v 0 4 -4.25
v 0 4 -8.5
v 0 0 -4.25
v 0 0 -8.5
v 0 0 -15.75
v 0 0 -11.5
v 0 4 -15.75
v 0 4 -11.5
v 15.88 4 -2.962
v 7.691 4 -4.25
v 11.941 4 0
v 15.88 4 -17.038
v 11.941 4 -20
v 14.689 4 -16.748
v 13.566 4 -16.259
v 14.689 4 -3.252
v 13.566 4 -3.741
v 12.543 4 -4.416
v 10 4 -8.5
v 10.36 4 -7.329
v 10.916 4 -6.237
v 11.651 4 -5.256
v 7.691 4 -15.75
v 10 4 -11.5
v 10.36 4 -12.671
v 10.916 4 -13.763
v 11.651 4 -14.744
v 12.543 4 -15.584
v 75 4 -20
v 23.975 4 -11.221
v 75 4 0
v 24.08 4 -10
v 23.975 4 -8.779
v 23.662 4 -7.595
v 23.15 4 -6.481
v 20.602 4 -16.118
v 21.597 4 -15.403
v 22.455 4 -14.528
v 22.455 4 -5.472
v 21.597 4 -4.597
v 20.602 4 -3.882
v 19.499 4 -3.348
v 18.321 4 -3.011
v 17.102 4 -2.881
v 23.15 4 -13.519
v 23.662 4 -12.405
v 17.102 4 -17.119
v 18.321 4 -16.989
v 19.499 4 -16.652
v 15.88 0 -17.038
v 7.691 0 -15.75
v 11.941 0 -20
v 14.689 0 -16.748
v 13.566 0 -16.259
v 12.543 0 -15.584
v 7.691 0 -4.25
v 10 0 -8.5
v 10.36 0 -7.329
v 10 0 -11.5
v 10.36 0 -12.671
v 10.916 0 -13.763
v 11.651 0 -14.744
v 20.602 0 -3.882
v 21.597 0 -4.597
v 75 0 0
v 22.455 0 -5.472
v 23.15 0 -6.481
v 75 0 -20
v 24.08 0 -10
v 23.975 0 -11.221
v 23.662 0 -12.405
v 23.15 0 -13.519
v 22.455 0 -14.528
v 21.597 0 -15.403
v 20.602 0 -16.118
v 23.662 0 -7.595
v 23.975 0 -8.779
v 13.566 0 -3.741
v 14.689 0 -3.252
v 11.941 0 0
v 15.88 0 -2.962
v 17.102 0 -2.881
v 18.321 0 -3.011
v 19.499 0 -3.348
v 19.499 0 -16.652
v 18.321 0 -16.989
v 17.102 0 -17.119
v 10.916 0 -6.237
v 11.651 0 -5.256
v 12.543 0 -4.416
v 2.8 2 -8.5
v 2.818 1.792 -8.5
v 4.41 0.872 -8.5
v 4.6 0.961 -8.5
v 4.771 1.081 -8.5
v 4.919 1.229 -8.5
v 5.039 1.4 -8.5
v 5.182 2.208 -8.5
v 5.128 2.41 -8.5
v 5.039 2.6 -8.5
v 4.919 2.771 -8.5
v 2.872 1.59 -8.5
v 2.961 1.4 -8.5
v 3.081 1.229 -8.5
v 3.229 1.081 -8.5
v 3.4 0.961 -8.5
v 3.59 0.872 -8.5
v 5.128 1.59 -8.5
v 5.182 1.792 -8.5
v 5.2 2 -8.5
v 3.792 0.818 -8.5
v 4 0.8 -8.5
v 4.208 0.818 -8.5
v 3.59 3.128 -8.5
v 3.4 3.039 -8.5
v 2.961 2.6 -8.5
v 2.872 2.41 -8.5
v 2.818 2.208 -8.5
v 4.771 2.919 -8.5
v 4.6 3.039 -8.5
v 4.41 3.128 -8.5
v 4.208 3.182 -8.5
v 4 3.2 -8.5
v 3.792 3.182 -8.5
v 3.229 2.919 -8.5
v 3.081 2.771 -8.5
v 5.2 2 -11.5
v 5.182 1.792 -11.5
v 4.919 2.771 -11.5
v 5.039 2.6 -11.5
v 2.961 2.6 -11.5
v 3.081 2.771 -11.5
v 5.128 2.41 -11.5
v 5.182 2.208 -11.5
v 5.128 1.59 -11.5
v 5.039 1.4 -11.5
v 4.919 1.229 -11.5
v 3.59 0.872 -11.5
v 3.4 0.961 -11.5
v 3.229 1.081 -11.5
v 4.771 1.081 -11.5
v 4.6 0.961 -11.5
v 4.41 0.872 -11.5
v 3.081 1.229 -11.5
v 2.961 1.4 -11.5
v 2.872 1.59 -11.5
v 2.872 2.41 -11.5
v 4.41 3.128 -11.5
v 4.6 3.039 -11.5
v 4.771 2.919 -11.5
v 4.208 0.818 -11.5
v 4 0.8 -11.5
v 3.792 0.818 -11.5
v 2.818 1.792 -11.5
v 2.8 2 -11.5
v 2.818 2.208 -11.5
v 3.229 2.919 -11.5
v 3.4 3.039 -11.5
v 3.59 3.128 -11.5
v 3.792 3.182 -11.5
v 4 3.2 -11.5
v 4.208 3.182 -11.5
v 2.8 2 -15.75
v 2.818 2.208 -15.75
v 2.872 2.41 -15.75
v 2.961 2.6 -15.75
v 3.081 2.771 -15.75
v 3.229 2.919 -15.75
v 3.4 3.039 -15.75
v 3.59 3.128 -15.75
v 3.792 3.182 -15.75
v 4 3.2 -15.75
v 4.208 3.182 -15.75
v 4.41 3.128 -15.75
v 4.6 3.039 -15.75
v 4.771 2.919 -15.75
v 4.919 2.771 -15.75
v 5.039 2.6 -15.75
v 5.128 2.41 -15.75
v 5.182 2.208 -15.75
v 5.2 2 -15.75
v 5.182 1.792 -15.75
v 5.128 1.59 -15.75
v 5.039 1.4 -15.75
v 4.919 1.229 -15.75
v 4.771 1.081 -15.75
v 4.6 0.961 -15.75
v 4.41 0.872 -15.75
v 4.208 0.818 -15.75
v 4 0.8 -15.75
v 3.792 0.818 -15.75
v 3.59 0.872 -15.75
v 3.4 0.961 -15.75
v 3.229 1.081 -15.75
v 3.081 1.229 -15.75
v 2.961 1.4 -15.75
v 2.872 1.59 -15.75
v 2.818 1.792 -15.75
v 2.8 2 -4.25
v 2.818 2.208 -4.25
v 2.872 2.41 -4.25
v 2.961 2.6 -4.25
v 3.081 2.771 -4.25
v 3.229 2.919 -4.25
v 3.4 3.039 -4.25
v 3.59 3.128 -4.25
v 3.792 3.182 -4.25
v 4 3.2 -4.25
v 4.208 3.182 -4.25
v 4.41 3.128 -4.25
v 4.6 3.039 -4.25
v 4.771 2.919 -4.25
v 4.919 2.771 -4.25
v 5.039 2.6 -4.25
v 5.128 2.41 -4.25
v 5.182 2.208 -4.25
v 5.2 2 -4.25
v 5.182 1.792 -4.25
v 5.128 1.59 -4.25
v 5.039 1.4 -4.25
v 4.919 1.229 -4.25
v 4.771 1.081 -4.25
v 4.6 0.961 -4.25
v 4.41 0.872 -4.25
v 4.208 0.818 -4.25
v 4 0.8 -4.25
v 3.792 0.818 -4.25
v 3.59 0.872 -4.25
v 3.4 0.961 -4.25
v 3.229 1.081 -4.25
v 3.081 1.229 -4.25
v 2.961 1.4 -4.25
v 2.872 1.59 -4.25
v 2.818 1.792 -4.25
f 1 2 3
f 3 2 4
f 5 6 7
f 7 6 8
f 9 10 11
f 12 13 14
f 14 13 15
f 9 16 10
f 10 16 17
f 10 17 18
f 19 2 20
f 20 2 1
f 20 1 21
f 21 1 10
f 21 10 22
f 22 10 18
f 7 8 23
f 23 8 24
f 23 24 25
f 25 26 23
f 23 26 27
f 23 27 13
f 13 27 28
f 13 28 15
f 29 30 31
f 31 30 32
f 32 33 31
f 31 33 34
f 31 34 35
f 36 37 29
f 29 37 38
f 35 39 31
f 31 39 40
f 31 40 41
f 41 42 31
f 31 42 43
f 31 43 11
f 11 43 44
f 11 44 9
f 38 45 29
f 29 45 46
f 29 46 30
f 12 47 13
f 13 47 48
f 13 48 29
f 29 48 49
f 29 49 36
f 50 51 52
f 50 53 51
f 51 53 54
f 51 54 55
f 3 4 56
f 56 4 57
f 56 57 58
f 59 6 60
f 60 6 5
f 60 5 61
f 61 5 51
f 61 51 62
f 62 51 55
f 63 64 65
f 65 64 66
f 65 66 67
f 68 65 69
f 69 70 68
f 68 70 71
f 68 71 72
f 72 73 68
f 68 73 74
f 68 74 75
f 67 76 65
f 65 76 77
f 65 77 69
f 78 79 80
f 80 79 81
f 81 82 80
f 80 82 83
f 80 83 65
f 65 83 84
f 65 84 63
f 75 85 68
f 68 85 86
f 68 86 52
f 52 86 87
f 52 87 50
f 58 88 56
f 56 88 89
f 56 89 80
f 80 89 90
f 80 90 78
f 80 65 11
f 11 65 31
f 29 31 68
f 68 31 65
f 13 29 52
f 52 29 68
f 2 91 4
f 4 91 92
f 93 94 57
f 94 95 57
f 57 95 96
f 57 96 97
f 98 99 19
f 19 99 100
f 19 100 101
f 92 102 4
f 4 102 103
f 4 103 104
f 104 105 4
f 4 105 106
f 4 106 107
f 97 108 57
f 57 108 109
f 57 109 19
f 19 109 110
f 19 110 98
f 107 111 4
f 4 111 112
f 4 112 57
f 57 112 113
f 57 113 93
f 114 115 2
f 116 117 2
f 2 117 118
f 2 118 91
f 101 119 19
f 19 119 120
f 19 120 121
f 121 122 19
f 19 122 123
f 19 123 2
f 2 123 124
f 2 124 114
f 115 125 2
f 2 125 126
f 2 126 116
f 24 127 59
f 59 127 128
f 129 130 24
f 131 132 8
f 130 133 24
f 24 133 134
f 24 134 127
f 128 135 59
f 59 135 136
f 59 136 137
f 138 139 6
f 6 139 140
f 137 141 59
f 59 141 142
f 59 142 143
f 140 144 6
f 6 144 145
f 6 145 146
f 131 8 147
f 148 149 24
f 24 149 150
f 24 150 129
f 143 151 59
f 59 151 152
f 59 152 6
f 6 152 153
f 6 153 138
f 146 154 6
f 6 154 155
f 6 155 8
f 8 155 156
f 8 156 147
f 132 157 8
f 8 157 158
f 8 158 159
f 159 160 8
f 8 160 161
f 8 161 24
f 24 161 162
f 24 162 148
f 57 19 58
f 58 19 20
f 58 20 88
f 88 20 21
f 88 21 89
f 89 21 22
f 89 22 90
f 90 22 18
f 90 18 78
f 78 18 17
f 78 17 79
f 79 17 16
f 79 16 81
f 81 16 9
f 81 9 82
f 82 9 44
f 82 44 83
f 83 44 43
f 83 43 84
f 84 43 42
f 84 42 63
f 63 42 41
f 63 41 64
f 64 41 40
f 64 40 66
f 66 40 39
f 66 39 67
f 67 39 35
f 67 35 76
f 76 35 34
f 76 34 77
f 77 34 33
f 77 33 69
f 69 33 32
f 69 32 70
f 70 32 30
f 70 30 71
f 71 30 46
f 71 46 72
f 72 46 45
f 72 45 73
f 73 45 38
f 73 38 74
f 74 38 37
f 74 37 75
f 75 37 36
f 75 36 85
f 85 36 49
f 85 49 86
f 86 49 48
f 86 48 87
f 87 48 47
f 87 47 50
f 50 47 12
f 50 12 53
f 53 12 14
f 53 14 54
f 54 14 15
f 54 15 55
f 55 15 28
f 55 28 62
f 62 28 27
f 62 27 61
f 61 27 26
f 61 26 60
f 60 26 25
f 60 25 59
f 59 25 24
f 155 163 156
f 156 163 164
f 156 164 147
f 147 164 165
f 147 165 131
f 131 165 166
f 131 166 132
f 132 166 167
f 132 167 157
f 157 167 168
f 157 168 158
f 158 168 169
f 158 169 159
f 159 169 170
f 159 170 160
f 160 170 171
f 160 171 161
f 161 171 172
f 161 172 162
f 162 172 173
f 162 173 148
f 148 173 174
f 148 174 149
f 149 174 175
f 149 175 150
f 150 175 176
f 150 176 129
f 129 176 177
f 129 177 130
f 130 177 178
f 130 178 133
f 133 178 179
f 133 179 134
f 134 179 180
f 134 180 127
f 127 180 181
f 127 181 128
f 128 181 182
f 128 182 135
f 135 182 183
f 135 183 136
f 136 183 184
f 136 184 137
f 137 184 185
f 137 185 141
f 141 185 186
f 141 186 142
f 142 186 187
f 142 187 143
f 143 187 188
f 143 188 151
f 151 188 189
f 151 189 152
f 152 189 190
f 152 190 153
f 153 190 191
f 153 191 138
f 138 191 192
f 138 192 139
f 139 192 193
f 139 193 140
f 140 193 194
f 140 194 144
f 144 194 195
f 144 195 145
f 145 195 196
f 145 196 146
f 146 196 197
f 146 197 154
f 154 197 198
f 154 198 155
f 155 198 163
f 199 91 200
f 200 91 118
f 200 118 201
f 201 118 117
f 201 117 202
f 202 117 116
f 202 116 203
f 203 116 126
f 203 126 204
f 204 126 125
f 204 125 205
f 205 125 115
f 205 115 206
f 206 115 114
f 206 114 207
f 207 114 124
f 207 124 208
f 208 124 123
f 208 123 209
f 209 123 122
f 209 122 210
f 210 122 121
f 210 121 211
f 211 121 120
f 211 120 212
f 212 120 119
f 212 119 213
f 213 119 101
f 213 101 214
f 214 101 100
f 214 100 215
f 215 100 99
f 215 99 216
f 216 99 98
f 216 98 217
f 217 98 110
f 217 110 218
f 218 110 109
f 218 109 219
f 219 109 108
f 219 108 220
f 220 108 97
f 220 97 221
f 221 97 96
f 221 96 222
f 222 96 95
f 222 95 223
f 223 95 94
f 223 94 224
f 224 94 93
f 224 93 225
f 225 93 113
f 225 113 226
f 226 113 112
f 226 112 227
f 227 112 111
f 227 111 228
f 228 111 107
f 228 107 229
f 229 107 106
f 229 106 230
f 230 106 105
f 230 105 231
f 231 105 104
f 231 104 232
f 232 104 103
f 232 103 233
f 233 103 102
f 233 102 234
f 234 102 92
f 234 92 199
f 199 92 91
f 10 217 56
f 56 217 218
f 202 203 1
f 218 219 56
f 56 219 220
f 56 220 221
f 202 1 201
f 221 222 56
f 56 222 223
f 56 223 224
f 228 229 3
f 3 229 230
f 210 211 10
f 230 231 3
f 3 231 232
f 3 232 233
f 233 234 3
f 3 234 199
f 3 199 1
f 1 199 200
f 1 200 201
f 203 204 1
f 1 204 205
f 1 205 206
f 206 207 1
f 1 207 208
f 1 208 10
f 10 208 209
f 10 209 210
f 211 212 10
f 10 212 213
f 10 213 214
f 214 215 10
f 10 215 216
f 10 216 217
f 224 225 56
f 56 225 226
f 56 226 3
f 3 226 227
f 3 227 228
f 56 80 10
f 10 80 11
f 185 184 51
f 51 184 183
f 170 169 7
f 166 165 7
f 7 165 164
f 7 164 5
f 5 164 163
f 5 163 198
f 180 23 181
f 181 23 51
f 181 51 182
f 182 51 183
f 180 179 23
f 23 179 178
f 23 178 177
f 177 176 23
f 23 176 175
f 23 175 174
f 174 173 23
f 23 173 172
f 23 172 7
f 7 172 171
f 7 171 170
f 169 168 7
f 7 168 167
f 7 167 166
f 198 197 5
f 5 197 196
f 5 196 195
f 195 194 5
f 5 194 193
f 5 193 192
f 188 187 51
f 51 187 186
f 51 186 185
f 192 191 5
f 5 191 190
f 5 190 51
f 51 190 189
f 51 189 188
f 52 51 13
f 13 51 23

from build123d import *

# Parameters (mm, degrees)
SKETCH1_W               = 75
SKETCH1_H               = 20
BOSS_EXTRUDE1_DEPTH     = 4
CUT_EXTRUDE1_DEPTH      = 78.723870207
CUT_EXTRUDE1_DEPTH_BACK = 4
M2_CLEARANCE_HOLE1_D    = 2.4
CUT_EXTRUDE2_DEPTH      = 4


with BuildPart() as part:
    # Sketch1 → Boss-Extrude1 (new body)
    with BuildSketch(Plane(origin=(0, 0, 0), x_dir=(1, 0, 0), z_dir=(0, 1, 0))):
        with Locations((37.5, 10)):
            Rectangle(SKETCH1_W, SKETCH1_H)
    extrude(amount=BOSS_EXTRUDE1_DEPTH)

    # Sketch2 → Cut-Extrude1 (cut, two sides: drawn at the far end of the back side and taken through both)
    with BuildSketch(Plane(origin=(0, 4, 0), x_dir=(1, 0, 0), z_dir=(0, 1, 0)).offset(-CUT_EXTRUDE1_DEPTH_BACK)):
        with BuildLine():
            Line((0, 8.5), (10, 8.5))
            ThreePointArc((10, 8.5), (24.080201147, 10), (10, 11.5))
            Line((10, 11.5), (0, 11.5))
            Line((0, 11.5), (0, 10))
            Line((0, 10), (0, 8.5))
        make_face()
    extrude(amount=CUT_EXTRUDE1_DEPTH + CUT_EXTRUDE1_DEPTH_BACK, mode=Mode.SUBTRACT)

    # M2 Clearance Hole1 (through all)
    with Locations(Plane(origin=(0, 0, -20), x_dir=(-1, 0, 0), z_dir=(0, 0, -1))):
        with Locations((-4, 2)):
            Hole(M2_CLEARANCE_HOLE1_D / 2)

    # Sketch5 → Cut-Extrude2 (cut)
    with BuildSketch(Plane(origin=(0, 4, 0), x_dir=(1, 0, 0), z_dir=(0, 1, 0))):
        Polygon((0, 15.75), (7.691253114, 15.75), (11.941253114, 20), (0, 20), align=None)
        Polygon((0, 0), (0, 4.25), (7.691253114, 4.25), (11.941253114, 0), align=None)
    extrude(amount=-CUT_EXTRUDE2_DEPTH, mode=Mode.SUBTRACT)


solid = part.part
